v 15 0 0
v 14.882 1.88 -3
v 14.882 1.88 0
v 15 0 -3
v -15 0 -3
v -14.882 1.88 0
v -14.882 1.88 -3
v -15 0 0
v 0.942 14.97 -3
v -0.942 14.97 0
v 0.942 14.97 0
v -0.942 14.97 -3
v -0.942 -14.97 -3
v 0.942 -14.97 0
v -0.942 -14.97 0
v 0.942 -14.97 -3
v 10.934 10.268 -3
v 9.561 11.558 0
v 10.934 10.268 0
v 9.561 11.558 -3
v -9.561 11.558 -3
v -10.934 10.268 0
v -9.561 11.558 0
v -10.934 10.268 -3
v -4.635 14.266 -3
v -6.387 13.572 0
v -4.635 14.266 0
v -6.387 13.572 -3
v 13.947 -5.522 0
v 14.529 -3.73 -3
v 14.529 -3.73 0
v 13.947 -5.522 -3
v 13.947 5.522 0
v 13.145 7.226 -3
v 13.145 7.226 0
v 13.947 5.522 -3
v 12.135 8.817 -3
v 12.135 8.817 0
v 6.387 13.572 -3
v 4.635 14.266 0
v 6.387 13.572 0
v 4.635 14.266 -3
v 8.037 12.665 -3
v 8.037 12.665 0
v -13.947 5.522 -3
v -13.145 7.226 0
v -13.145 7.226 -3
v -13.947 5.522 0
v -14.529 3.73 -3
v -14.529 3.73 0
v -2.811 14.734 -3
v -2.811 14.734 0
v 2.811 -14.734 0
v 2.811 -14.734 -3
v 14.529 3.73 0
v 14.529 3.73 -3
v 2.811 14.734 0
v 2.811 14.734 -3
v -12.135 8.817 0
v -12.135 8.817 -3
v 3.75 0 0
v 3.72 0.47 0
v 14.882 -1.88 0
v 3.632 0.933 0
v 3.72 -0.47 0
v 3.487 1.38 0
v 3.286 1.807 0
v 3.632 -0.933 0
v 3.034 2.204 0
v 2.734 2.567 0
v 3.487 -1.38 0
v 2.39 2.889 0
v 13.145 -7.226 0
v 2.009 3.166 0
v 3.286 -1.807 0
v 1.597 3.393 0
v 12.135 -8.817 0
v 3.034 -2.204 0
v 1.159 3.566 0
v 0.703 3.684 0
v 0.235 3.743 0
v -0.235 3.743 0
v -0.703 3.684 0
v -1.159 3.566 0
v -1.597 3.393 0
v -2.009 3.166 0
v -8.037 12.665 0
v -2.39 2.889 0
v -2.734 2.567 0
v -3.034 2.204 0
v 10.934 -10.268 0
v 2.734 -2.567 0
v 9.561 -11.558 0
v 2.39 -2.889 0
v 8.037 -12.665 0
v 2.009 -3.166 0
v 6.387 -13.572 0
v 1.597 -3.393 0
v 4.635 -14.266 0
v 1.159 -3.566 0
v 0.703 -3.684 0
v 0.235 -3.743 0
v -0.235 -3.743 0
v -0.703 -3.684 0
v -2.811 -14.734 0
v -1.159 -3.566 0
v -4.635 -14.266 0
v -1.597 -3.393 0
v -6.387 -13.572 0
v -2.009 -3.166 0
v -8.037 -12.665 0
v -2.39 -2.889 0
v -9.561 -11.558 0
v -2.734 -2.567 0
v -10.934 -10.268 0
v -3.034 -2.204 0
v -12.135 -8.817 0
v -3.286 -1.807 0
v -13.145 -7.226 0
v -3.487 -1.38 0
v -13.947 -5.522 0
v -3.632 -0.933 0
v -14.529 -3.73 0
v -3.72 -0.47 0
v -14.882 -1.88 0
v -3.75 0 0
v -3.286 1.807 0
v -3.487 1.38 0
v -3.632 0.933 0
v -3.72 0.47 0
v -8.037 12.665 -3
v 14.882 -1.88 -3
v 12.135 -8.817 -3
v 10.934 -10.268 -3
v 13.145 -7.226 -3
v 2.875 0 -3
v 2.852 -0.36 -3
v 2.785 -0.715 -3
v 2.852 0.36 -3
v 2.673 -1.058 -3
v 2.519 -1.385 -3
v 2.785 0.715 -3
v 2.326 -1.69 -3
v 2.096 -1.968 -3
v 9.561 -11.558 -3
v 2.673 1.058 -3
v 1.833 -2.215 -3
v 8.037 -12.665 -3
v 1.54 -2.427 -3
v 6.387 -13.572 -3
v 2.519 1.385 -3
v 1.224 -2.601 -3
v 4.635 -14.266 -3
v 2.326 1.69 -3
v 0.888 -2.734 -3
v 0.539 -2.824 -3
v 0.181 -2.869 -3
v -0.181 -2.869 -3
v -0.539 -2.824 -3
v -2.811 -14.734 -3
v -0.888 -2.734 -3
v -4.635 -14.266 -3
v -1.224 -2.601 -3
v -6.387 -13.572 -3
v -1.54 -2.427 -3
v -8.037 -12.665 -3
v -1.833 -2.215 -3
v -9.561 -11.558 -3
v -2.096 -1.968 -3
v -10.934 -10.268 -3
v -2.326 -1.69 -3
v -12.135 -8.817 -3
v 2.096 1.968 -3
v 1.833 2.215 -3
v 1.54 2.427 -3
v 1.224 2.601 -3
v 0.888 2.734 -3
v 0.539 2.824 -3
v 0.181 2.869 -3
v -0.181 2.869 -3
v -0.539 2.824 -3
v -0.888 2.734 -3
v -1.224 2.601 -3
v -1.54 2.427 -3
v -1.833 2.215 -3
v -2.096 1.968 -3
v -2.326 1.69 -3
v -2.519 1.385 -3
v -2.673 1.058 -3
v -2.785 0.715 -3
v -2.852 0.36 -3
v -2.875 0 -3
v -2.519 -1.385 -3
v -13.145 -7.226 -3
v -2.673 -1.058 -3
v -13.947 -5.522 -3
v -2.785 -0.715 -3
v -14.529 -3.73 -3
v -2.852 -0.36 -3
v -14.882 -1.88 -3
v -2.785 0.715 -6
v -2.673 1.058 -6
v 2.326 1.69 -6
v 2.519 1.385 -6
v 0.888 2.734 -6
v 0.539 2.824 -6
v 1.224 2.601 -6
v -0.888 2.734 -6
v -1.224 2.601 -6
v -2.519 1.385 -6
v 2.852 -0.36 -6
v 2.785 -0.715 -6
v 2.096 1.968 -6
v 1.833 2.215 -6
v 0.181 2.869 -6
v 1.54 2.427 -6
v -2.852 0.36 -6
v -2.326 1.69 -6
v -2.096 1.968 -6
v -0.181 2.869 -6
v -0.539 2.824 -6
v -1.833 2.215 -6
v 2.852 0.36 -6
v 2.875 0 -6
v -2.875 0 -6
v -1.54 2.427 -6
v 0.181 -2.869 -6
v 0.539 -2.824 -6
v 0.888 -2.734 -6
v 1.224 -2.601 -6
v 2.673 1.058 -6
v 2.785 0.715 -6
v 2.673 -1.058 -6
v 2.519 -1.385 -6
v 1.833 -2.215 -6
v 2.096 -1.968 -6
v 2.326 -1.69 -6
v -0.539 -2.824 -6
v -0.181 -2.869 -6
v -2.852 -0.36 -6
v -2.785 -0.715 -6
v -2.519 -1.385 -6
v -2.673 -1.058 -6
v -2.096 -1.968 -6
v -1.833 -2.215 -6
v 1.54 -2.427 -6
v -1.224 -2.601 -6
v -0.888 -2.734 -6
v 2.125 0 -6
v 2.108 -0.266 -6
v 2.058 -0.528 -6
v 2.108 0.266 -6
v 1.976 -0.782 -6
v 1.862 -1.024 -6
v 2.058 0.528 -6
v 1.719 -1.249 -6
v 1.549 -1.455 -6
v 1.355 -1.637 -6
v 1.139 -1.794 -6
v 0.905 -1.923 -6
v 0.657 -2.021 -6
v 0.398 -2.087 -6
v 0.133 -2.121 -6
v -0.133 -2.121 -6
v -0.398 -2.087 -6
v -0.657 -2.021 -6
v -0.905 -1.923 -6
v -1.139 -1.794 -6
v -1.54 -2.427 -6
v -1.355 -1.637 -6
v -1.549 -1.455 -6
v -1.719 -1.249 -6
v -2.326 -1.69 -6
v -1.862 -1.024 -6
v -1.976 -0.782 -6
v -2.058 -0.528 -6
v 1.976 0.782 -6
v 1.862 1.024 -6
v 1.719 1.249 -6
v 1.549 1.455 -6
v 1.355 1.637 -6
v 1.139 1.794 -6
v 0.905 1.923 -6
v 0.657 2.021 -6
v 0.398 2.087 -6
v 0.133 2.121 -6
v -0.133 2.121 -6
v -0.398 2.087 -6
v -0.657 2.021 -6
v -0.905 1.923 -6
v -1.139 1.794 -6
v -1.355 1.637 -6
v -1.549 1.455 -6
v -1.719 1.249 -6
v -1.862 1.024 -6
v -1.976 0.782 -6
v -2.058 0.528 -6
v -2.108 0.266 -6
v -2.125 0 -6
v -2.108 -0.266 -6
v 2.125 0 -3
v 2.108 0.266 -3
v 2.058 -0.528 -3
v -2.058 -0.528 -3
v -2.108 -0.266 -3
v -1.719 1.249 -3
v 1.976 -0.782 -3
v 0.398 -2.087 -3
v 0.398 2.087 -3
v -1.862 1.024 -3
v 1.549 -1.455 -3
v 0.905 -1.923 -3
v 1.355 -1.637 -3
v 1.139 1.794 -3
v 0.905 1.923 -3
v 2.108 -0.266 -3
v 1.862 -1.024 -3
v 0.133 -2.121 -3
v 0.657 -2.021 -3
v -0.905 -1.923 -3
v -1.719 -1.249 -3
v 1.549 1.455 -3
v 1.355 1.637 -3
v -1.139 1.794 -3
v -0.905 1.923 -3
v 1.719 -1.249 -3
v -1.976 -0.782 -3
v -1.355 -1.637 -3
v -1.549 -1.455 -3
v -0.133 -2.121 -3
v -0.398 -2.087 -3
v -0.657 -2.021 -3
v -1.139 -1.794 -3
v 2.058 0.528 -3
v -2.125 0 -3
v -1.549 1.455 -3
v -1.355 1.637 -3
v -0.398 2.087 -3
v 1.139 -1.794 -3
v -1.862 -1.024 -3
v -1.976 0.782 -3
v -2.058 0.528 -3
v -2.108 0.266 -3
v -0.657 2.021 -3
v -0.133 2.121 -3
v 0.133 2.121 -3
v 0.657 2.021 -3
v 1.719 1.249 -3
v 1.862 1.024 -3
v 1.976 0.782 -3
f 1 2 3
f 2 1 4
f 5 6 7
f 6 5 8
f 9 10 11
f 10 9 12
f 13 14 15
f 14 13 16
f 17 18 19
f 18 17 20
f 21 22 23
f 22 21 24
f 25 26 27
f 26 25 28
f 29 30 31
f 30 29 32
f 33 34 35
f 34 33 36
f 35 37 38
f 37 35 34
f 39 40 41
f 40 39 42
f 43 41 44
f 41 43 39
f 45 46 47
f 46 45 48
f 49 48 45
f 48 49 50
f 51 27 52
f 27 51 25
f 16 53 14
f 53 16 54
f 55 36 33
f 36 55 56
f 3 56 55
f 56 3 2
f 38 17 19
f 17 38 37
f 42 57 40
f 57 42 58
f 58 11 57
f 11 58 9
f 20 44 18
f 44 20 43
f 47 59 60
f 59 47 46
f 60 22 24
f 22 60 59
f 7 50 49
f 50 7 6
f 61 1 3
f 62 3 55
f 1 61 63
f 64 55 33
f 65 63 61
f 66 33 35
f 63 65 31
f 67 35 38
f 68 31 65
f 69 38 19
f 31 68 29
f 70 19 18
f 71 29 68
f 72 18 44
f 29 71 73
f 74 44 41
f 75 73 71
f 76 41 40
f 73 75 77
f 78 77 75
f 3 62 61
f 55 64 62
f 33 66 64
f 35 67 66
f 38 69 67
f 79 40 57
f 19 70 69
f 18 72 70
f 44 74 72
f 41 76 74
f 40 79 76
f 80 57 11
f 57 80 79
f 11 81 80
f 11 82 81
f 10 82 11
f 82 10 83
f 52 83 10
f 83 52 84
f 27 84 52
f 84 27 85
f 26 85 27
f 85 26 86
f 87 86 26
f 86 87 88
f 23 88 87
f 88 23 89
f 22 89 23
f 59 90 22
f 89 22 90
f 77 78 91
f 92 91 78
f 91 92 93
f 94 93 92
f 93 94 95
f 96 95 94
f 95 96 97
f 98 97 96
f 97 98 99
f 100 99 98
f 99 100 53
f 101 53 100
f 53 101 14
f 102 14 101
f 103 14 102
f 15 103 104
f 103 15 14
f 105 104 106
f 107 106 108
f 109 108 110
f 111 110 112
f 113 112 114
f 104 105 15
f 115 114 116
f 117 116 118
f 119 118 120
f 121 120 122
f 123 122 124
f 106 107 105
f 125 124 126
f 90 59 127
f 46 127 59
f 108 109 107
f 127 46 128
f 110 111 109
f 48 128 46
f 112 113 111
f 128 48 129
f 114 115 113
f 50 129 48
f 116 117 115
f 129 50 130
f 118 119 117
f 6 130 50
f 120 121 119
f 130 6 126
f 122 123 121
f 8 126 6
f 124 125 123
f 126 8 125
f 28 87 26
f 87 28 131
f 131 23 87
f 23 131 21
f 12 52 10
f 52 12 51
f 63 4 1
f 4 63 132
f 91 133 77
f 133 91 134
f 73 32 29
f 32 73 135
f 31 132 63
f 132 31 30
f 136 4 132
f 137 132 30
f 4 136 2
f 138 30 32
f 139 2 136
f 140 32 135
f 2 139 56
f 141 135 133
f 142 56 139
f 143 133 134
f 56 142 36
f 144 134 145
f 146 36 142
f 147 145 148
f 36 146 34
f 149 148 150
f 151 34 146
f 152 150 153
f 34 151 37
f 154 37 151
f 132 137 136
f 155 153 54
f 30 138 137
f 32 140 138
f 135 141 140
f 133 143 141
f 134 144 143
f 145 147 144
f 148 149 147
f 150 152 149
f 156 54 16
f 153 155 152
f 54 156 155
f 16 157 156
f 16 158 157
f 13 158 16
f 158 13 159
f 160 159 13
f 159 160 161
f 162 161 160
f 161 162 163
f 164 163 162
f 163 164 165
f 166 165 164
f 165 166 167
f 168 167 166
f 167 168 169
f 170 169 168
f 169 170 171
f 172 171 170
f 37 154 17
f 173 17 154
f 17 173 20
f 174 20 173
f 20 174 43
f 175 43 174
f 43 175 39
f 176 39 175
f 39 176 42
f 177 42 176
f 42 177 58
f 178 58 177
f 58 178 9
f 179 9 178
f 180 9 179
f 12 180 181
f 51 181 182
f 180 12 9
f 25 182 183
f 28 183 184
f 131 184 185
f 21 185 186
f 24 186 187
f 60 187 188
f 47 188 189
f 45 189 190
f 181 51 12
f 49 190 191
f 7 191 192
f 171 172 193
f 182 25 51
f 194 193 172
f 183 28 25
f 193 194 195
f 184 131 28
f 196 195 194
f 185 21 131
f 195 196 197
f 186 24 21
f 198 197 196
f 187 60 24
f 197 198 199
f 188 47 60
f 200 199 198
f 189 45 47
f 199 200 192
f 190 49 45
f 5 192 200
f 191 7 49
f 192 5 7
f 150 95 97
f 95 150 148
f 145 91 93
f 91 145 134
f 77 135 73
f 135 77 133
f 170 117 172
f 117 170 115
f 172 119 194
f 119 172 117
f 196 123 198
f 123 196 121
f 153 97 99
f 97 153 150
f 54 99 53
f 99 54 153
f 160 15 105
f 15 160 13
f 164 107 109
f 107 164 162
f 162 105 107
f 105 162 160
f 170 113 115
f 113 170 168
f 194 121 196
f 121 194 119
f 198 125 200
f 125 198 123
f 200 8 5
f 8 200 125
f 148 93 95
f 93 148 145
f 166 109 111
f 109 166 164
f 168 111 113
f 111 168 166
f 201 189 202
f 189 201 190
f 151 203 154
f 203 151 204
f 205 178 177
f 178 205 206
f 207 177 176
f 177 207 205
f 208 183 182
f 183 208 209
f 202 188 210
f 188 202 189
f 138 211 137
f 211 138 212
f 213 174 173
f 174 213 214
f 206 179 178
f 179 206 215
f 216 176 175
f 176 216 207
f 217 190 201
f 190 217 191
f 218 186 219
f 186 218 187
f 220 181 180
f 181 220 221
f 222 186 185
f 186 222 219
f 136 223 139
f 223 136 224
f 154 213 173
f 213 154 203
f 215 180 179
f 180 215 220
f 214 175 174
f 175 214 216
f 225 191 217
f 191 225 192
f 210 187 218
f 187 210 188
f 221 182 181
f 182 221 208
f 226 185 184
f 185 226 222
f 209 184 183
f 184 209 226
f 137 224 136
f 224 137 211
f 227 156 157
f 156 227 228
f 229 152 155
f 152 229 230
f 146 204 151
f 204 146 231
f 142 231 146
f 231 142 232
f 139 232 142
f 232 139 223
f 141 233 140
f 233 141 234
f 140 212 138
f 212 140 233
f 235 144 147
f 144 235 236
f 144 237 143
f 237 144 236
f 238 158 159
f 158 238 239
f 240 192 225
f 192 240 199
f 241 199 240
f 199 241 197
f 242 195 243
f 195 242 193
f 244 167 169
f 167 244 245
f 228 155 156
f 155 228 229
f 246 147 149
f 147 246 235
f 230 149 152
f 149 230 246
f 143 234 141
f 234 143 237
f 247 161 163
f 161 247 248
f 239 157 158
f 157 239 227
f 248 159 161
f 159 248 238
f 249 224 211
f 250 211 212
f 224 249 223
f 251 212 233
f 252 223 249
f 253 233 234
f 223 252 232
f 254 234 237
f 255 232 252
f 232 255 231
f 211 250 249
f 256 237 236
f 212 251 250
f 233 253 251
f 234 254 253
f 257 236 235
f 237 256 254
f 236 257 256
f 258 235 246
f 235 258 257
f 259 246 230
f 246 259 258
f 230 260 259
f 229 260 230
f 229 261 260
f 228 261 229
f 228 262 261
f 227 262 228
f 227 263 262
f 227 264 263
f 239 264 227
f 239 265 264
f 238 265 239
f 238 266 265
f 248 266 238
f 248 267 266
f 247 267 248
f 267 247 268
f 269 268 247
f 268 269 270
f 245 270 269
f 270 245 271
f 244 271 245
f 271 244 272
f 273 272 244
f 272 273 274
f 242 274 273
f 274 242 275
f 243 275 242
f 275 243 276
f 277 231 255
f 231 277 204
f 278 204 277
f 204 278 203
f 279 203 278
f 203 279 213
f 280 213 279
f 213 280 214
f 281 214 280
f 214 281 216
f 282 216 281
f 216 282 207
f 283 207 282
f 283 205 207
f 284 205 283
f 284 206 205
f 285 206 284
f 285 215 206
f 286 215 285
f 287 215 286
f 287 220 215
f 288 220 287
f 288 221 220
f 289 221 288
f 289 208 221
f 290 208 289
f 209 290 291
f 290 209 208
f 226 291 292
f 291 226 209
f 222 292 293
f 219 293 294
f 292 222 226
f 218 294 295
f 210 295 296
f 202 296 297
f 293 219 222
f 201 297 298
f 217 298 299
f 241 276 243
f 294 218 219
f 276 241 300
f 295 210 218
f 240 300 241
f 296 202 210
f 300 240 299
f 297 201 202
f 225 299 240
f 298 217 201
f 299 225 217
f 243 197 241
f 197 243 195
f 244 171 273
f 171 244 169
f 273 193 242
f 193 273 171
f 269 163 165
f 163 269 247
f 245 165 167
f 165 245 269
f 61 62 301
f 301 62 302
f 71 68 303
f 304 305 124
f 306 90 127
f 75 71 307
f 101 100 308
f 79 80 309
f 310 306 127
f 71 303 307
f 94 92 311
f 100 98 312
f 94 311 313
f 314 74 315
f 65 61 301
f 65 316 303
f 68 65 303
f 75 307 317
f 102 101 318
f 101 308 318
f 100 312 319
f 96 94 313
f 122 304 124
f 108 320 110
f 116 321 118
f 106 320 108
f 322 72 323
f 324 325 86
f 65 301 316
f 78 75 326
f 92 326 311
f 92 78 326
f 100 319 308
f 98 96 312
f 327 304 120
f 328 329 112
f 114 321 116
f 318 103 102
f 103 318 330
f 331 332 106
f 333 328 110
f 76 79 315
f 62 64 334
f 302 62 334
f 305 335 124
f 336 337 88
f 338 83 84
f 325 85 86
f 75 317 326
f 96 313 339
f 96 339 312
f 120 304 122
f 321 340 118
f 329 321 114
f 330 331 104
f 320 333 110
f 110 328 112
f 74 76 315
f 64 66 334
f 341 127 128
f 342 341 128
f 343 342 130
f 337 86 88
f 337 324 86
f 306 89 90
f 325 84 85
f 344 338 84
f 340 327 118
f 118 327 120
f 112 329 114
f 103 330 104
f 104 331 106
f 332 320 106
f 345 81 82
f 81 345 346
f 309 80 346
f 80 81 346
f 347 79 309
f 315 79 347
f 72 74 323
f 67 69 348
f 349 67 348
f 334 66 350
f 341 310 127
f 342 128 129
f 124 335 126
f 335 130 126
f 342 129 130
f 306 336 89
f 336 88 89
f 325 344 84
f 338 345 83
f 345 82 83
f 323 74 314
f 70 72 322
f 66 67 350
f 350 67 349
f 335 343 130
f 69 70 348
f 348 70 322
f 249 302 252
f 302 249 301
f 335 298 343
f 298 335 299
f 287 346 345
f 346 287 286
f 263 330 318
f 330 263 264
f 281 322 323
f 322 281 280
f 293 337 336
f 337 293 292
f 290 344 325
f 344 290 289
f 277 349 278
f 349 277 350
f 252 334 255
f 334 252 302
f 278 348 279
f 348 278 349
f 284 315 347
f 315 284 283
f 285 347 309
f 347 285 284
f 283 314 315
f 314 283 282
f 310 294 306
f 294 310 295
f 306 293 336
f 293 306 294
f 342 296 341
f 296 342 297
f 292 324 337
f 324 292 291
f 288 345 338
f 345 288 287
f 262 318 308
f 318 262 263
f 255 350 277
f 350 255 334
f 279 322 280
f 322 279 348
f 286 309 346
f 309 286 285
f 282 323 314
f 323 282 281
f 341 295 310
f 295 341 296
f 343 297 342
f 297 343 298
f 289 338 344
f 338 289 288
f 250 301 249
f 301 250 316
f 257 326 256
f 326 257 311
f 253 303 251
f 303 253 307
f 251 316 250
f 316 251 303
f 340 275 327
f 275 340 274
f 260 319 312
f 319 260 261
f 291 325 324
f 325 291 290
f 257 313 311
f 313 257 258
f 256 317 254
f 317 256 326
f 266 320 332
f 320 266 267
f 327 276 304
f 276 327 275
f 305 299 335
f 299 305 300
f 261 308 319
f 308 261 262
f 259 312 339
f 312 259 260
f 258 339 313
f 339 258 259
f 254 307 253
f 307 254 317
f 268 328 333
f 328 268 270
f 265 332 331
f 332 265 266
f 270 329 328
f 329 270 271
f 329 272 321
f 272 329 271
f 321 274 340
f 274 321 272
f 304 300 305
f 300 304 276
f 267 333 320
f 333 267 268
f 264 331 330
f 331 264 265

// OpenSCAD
$fn = 50;


difference() {
	union() {
		translate(v = [0, 0, -3.0000000000]) {
			cylinder(h = 3, r = 15.0000000000);
		}
		#translate(v = [0, 0, -6.0000000000]) {
			cylinder(h = 6, r = 2.8750000000);
		}
	}
	union() {
		translate(v = [0, 0, 0]) {
			rotate(a = [0, 0, 0]) {
				difference() {
					union() {
						translate(v = [0, 0, -6.0000000000]) {
							cylinder(h = 6, r = 2.0000000000);
						}
						translate(v = [0, 0, -3]) {
							cylinder(h = 3, r1 = 2.1250000000, r2 = 3.7500000000);
						}
						translate(v = [0, 0, -6.0000000000]) {
							cylinder(h = 6, r = 2.1250000000);
						}
						translate(v = [0, 0, -6.0000000000]) {
							cylinder(h = 6, r = 2.0000000000);
						}
					}
					union();
				}
			}
		}
	}
}
